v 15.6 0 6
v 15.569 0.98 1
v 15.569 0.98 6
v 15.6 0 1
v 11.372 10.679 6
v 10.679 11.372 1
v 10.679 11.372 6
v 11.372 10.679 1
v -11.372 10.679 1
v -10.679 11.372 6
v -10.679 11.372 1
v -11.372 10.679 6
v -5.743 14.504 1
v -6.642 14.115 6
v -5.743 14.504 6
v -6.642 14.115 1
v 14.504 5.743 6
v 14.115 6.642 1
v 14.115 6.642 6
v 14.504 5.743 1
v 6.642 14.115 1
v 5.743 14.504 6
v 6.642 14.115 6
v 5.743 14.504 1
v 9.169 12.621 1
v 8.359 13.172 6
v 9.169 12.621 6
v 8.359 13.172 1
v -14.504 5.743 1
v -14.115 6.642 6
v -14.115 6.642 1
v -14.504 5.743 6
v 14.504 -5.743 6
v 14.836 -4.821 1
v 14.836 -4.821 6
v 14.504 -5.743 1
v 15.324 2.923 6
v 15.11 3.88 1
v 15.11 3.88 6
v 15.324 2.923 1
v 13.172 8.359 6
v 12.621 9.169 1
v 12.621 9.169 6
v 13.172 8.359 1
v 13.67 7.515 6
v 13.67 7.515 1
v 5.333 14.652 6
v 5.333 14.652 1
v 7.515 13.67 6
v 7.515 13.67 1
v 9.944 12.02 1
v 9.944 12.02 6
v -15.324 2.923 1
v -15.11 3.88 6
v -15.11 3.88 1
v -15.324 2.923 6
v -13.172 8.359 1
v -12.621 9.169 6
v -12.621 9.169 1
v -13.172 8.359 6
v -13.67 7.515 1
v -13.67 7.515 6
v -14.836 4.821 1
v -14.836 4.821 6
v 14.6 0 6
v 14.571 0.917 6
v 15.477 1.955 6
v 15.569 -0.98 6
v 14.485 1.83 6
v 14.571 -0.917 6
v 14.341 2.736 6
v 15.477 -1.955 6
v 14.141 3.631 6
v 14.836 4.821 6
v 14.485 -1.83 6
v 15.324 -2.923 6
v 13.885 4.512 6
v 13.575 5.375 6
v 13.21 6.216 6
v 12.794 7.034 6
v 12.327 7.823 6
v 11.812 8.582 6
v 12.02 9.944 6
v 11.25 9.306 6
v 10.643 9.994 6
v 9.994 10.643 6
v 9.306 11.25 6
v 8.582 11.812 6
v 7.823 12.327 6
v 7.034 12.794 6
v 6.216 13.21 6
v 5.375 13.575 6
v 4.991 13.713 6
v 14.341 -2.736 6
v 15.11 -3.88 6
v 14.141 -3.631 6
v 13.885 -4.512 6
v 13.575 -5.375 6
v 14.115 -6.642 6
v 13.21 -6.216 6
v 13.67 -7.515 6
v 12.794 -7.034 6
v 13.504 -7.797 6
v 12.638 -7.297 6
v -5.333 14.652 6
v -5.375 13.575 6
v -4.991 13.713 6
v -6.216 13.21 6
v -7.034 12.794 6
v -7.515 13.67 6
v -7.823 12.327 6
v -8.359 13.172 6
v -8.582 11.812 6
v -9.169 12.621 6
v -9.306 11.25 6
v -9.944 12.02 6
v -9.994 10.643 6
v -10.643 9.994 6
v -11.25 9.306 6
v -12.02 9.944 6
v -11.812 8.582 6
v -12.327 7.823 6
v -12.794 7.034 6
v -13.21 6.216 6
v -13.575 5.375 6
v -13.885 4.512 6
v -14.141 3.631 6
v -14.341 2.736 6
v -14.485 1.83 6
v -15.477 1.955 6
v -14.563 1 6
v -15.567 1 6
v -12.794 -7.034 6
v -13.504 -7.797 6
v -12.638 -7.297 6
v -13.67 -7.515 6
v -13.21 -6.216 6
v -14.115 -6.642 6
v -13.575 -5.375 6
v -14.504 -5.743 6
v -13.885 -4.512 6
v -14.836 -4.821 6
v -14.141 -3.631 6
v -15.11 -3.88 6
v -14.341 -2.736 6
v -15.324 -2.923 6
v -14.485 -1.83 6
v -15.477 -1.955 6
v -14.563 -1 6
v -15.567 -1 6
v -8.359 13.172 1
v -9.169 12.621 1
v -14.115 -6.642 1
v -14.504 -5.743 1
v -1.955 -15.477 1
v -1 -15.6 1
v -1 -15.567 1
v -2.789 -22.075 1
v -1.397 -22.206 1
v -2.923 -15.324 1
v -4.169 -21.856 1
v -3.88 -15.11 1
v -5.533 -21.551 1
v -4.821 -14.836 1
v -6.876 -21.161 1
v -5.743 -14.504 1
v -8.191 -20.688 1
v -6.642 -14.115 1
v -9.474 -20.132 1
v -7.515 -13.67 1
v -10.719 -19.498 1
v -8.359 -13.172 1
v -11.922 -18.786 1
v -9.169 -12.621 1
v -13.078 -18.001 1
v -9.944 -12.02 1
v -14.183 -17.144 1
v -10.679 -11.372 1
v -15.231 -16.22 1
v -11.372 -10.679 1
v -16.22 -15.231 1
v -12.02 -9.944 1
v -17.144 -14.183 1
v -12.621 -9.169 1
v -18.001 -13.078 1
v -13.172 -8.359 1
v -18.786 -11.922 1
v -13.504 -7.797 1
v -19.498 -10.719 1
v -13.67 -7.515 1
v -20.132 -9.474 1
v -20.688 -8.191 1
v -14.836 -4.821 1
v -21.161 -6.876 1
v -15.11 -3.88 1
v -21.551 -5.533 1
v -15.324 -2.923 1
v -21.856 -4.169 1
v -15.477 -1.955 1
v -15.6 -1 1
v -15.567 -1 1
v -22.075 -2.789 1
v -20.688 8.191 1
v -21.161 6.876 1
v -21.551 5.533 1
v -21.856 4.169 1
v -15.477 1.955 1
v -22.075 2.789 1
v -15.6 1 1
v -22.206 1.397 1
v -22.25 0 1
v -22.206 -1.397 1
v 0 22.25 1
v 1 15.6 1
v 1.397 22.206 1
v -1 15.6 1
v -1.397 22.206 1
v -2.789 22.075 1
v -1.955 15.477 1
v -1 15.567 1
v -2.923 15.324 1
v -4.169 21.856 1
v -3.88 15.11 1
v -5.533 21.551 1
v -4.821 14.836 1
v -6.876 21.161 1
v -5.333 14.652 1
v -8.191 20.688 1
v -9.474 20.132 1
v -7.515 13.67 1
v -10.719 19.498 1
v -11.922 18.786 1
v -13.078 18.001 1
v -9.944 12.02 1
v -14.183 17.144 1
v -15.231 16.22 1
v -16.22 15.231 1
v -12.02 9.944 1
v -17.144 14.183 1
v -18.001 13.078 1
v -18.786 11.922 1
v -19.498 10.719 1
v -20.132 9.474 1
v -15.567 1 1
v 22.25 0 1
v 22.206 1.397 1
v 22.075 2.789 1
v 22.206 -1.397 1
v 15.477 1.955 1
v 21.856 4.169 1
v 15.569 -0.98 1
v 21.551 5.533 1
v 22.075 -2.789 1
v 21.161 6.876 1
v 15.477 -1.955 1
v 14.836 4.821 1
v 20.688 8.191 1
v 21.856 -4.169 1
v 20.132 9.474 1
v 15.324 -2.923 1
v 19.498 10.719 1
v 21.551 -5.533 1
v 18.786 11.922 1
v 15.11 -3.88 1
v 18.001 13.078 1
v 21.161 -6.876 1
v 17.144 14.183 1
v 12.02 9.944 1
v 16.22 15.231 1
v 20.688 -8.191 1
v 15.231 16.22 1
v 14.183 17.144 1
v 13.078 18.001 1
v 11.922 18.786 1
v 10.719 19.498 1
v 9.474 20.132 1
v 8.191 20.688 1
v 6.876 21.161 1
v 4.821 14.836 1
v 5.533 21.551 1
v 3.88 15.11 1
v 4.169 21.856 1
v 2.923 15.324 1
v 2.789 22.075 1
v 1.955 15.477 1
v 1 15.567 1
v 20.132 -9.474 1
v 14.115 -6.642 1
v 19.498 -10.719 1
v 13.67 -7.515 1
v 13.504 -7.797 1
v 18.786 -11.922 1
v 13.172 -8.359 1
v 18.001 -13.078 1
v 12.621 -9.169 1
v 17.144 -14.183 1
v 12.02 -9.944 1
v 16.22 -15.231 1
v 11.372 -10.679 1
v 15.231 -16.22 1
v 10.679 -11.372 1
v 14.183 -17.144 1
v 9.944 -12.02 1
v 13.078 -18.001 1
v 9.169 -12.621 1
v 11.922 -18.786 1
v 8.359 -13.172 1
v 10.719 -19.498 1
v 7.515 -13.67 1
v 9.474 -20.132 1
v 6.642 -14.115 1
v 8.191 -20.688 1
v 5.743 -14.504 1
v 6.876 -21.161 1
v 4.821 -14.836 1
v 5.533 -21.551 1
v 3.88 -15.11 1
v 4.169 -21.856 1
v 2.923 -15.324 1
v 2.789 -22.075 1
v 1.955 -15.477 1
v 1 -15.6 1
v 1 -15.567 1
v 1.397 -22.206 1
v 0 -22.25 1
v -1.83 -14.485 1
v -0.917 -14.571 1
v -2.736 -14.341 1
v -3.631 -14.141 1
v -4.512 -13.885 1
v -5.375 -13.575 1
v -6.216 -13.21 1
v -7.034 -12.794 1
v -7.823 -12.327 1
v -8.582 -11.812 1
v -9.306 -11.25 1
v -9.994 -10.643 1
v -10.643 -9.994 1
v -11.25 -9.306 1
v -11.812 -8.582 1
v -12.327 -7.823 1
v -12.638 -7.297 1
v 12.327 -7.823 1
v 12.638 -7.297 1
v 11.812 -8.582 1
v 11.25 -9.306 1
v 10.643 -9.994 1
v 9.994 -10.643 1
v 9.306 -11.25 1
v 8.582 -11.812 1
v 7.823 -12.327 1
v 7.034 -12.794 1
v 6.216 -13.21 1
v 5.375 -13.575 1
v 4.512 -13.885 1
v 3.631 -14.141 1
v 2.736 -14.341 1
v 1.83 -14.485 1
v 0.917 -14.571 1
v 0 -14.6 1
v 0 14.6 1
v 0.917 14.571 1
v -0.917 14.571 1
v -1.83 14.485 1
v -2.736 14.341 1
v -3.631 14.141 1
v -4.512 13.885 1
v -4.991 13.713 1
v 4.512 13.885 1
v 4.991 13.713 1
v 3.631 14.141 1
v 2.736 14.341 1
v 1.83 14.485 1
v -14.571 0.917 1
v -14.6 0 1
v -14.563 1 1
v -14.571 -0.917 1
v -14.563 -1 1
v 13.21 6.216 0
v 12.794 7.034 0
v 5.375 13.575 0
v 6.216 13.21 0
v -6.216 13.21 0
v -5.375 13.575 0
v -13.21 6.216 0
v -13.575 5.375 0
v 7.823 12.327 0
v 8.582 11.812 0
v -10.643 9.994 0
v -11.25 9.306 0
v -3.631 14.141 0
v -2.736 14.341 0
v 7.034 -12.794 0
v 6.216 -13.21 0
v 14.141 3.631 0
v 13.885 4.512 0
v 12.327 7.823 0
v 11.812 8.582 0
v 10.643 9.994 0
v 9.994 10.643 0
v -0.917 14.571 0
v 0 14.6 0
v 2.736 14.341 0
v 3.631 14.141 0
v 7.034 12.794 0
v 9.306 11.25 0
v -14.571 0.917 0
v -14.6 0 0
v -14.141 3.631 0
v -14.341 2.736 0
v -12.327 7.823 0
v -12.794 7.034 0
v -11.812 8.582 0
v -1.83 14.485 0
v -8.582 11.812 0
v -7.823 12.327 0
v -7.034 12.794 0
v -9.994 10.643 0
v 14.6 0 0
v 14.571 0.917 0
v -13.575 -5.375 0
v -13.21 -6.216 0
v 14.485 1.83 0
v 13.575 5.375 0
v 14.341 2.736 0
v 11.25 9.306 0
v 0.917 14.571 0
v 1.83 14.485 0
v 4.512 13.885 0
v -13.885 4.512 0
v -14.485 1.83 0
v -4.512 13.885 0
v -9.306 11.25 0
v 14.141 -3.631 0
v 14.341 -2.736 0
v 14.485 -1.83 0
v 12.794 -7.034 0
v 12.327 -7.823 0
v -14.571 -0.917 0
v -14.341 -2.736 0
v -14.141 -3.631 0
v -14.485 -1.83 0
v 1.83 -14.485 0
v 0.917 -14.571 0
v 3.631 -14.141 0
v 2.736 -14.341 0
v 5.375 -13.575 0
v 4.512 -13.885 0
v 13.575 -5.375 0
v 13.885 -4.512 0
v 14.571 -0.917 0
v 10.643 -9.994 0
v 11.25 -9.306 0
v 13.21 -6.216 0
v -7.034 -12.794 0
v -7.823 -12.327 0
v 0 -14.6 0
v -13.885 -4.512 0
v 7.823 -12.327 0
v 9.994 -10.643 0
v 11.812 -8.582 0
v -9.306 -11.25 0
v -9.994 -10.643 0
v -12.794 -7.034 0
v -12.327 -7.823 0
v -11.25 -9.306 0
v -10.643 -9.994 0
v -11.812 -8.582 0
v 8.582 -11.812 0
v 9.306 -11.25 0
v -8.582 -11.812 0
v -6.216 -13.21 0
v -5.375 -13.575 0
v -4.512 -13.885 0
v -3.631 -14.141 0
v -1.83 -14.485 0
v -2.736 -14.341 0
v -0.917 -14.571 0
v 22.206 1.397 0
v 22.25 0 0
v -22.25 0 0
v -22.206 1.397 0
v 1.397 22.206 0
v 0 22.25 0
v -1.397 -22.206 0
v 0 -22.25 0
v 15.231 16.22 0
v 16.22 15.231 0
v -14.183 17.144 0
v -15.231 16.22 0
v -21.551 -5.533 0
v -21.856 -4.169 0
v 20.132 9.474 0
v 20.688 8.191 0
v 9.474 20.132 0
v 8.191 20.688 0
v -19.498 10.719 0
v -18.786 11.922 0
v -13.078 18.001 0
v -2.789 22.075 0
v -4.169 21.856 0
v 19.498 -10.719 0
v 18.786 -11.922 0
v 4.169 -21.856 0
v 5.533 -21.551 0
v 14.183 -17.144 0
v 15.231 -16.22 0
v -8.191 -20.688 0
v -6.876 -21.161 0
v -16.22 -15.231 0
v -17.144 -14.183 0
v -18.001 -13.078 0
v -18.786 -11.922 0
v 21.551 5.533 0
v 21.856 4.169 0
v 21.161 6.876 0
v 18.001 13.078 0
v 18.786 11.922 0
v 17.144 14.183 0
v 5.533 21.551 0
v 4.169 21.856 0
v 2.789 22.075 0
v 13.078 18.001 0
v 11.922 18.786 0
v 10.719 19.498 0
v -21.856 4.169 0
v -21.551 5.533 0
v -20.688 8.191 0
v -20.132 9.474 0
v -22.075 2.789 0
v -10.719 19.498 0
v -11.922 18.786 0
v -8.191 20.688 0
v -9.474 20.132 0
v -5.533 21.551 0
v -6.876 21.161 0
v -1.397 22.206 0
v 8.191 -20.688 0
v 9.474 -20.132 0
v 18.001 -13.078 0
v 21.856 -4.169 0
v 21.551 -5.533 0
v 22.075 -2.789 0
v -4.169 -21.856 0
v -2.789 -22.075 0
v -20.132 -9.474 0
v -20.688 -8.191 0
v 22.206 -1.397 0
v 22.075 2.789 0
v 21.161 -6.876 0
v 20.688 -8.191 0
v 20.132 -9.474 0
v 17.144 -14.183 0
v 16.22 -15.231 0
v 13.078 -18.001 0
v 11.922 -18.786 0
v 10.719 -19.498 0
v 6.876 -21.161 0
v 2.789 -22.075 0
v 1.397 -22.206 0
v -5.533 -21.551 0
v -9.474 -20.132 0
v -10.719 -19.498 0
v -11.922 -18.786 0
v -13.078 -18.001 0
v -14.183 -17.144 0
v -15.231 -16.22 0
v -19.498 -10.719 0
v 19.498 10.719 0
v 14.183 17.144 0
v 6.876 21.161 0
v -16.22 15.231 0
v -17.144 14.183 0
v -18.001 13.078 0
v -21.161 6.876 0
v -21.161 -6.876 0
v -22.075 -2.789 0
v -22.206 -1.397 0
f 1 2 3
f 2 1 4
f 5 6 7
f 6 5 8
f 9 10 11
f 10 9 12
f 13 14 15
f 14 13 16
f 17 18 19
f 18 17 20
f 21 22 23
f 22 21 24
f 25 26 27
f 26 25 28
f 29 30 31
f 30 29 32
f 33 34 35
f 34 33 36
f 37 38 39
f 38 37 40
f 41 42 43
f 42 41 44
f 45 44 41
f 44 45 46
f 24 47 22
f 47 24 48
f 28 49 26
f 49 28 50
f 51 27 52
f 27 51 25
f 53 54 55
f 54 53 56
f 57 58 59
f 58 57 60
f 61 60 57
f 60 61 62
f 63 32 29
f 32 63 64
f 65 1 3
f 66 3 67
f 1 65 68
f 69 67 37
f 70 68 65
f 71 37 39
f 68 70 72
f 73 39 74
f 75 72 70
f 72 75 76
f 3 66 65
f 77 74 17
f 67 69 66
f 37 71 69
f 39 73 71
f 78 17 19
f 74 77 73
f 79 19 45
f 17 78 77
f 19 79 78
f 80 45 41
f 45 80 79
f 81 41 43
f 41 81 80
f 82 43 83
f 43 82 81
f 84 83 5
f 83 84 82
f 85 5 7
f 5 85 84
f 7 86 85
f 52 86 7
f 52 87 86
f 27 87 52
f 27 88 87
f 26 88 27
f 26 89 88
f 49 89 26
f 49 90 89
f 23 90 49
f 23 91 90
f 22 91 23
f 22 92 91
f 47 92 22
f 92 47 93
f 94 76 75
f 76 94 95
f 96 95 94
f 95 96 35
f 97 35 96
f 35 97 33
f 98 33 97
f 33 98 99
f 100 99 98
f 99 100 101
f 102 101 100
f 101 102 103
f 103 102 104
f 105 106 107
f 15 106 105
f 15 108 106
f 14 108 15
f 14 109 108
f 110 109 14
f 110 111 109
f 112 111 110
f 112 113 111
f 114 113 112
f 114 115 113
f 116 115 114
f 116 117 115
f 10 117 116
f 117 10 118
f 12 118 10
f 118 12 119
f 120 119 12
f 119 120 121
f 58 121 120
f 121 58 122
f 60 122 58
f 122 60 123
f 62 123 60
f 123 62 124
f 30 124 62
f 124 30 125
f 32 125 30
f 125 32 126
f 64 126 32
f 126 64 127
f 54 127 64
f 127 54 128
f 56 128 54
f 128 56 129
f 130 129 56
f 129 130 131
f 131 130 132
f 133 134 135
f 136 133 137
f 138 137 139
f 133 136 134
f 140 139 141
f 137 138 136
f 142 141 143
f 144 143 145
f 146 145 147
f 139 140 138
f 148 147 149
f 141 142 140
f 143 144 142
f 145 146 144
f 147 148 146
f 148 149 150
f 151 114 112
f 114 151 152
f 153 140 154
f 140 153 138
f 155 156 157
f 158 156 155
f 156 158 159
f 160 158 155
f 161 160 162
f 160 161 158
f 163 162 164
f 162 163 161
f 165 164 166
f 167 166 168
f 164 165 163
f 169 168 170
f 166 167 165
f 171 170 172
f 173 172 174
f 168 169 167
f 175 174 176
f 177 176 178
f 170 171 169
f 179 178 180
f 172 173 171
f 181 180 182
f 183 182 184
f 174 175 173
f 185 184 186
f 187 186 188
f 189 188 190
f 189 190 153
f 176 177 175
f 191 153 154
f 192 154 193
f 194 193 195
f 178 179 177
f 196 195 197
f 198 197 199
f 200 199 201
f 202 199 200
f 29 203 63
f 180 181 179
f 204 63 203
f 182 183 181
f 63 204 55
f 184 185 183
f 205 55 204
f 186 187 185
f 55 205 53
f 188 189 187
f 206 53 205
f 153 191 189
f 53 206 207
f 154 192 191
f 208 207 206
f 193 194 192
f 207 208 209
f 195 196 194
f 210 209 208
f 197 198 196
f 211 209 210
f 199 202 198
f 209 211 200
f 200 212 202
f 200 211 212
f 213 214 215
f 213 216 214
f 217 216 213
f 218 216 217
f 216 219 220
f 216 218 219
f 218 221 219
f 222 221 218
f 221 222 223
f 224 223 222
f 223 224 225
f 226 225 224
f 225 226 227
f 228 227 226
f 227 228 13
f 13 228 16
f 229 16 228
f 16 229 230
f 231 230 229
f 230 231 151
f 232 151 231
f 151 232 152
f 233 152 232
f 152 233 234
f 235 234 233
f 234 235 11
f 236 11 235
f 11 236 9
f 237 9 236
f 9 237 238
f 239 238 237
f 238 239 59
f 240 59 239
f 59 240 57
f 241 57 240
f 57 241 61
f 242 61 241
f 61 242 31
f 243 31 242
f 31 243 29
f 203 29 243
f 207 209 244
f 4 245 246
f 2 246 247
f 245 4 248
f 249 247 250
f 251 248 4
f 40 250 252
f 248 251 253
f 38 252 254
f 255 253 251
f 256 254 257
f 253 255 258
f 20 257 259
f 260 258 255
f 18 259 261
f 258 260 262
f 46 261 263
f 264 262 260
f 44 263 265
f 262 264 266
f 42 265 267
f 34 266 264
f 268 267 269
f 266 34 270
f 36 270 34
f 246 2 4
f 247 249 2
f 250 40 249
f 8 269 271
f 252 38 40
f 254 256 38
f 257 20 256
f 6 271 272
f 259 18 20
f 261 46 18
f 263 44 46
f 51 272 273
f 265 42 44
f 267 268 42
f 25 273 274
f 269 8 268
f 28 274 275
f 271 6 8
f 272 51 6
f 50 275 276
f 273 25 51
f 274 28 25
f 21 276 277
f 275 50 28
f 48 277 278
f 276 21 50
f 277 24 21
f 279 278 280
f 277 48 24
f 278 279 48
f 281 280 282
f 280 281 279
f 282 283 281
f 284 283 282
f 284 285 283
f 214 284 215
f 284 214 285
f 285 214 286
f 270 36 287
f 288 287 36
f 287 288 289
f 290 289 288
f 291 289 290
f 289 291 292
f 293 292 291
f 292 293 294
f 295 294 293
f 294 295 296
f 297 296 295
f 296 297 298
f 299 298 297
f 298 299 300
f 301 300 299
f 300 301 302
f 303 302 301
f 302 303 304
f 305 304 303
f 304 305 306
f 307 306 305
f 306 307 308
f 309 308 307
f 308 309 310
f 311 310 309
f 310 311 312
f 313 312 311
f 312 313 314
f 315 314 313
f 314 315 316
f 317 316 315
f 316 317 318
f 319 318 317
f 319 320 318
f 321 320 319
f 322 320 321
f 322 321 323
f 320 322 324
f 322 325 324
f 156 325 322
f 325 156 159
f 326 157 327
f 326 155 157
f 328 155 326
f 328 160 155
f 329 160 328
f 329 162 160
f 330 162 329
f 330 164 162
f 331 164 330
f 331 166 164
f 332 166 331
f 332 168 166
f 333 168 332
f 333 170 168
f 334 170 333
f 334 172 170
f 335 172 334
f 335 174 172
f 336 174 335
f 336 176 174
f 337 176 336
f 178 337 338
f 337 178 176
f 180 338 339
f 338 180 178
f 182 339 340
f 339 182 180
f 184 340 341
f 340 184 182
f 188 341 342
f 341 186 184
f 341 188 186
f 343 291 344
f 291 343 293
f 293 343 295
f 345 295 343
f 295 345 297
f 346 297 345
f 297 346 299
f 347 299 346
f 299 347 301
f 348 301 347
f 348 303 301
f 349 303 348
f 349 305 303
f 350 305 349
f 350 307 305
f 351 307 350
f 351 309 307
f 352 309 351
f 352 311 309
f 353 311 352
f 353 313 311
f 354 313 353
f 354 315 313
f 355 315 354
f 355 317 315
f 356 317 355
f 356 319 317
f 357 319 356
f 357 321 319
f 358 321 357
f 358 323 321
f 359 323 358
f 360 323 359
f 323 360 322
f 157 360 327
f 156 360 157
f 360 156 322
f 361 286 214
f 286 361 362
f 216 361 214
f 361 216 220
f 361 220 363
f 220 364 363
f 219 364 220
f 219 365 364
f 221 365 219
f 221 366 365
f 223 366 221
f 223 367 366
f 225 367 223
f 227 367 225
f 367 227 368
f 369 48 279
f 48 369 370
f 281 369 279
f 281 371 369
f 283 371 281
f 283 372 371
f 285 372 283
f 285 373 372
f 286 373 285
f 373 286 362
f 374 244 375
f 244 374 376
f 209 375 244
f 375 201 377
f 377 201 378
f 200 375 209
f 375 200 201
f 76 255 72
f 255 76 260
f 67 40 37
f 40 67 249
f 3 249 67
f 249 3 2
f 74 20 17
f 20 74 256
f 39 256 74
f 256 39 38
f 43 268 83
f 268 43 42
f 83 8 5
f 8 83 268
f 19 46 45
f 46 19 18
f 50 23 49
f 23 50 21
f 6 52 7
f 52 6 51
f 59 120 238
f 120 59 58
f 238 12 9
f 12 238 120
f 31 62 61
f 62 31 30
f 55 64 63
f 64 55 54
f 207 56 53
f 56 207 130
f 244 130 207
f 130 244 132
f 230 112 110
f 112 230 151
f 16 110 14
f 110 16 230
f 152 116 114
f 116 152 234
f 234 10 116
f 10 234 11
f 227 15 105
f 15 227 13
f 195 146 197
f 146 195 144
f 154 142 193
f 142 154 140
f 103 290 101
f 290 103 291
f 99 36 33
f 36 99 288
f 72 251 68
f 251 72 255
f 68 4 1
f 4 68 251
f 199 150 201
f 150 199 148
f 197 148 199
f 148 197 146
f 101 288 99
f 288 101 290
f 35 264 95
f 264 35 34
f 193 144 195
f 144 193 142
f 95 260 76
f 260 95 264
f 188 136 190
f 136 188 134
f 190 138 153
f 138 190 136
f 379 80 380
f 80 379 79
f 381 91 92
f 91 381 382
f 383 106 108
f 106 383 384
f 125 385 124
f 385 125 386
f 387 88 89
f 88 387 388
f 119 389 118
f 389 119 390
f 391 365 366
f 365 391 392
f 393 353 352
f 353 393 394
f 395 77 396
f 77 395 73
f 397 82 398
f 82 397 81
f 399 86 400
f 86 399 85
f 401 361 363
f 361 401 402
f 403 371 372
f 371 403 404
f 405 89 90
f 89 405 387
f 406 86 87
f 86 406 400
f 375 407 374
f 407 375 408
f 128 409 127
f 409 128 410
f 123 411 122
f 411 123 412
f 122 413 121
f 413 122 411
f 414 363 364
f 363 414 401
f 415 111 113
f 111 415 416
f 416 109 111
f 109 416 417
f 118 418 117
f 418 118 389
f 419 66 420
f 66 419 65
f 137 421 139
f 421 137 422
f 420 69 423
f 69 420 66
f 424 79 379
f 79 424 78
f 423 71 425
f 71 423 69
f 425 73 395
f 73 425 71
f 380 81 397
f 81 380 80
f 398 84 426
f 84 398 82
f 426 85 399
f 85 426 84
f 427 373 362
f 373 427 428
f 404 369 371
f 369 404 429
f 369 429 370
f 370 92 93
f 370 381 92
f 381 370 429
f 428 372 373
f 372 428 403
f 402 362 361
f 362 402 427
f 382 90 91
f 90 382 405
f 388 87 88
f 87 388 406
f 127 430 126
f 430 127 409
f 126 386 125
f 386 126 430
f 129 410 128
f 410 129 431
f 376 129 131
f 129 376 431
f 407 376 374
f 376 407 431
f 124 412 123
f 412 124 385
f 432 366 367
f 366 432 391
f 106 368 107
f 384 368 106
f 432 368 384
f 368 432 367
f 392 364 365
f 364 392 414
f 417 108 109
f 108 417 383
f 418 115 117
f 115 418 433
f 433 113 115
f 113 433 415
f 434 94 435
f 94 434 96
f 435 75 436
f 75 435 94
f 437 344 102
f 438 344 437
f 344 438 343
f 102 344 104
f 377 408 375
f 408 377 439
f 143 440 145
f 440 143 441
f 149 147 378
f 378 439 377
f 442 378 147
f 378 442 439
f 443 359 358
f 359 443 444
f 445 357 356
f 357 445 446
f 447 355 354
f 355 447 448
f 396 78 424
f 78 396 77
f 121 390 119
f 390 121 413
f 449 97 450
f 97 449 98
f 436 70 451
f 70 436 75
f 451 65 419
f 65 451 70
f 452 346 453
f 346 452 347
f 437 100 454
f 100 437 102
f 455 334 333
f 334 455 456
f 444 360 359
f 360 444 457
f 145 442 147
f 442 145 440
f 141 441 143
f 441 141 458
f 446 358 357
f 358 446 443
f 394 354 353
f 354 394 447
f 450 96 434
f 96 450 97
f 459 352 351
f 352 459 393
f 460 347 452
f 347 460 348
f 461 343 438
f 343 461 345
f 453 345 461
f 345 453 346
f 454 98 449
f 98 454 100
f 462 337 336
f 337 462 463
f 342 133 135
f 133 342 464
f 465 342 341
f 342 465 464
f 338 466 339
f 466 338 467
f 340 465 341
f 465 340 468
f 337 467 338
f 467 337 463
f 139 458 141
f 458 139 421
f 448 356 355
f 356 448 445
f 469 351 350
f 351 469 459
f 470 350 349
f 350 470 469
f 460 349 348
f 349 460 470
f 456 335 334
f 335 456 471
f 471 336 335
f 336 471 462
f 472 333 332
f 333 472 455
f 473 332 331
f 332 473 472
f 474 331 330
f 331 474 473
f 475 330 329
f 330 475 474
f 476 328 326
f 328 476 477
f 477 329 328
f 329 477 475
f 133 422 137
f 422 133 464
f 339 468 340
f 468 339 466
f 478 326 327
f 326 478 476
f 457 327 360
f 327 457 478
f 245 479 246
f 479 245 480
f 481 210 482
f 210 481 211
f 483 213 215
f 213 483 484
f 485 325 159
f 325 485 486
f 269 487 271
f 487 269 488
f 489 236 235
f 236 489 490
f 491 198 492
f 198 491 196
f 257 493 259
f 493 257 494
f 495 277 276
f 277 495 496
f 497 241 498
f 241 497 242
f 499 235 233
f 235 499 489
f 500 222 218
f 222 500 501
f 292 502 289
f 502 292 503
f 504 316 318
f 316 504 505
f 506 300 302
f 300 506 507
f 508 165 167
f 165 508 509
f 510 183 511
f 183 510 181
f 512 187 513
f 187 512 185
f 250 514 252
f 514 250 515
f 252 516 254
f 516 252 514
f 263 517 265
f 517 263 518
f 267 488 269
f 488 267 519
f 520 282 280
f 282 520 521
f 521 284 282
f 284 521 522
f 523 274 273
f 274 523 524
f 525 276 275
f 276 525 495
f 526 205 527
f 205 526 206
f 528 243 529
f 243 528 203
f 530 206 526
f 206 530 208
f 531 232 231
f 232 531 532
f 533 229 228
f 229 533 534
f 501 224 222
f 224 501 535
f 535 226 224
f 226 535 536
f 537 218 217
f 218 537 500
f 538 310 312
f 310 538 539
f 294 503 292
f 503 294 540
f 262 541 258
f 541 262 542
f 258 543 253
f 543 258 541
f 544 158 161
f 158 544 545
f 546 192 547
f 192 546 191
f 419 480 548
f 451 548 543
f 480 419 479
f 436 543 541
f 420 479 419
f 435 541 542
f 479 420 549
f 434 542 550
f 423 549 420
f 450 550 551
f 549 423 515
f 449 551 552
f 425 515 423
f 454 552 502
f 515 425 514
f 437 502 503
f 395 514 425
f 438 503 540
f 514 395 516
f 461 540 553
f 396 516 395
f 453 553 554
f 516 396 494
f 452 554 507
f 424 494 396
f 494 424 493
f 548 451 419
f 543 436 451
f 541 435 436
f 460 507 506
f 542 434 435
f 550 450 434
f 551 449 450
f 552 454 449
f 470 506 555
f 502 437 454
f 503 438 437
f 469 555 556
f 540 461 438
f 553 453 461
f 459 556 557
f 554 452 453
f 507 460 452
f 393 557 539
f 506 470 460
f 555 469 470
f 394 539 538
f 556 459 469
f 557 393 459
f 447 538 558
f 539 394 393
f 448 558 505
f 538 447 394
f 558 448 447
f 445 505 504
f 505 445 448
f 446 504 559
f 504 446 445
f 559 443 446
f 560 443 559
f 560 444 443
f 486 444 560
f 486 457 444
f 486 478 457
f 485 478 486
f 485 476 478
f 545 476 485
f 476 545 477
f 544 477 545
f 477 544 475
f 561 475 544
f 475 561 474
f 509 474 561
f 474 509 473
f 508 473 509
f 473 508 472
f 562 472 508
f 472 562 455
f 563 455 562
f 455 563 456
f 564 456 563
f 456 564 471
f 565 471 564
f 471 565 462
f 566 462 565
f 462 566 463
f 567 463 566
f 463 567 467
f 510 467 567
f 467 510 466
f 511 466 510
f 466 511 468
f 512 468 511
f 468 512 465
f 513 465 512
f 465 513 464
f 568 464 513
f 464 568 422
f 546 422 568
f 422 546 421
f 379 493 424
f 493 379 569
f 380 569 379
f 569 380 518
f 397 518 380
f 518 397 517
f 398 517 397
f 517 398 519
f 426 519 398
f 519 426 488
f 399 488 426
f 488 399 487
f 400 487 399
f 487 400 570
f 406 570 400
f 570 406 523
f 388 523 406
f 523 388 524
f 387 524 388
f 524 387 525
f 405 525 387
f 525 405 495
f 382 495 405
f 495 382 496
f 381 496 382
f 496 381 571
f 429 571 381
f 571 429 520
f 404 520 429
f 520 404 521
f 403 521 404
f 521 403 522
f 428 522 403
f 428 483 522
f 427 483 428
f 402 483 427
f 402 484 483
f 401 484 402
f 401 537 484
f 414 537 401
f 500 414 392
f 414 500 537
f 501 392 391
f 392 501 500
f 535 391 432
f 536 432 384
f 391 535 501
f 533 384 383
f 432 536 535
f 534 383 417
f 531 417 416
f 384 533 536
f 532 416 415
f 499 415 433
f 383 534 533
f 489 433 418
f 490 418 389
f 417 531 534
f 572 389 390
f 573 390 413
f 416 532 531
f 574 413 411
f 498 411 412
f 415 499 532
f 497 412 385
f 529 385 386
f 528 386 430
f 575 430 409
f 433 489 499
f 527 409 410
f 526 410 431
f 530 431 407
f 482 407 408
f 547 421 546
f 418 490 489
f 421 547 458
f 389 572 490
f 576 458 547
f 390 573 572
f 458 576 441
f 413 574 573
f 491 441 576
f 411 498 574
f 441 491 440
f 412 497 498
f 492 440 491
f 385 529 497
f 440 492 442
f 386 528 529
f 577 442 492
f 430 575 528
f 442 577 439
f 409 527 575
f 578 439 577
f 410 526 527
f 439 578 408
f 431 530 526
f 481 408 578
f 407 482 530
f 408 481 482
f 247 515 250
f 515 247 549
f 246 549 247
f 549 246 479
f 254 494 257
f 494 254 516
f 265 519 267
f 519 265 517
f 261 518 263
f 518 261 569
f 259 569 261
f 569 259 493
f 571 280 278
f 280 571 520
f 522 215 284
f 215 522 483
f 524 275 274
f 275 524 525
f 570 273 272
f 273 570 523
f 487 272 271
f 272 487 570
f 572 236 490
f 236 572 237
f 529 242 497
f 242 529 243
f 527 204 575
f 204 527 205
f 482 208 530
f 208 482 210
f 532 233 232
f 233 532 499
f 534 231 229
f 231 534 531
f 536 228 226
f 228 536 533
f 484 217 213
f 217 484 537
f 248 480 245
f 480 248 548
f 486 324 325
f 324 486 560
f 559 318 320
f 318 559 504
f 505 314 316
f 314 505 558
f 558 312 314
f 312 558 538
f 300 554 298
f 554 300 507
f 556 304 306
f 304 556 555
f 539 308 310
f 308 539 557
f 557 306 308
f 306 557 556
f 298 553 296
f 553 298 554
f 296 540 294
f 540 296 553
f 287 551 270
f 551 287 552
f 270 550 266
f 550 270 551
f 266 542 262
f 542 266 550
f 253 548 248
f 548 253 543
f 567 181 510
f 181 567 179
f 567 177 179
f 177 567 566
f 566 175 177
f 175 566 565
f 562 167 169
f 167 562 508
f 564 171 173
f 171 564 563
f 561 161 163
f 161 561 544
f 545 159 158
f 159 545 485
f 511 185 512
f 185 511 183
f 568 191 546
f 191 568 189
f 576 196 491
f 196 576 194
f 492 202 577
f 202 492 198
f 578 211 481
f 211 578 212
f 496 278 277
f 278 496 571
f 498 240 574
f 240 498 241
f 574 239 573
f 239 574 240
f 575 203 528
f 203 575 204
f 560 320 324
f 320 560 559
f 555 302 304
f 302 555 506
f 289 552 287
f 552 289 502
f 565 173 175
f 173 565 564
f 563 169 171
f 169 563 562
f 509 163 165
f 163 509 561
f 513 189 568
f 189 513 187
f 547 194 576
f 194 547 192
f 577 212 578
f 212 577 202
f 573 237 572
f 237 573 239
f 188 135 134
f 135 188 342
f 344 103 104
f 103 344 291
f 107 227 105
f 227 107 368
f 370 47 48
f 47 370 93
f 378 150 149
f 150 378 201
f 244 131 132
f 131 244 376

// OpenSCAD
// This design is a cover for Adafruit's 16-Neopixel ring combined with the Gemma microcontroller into a necklace.
// Author: brightcolorfulflickers - instagram, tumblr, github
// September 2016

ring_h = 5; // height of the inner ring perpendicular to the PCB
outer_r = 44.5/2; // from OD posted on Adafruit product page
inner_r = 31.2/2; // from ID posted on Adafruit product page
case_ring_thick = 1; // thickness of the inner ring perpendicular to the PCB
case_top_thick = 1; // the thickness of the diffusion layer on top of the LEDs
wire_slot = 2; // width of slot for wires
top_cutout_angle = 60; // half sweep of top cutout (total is this x 2) since the Gemma presses up against the Neopixel ring
bottom_cutout_angle = 20; // half sweep of bottom cutout (total is this x 2) to allow space for battery & wire
fnval = 100; // resolution of render

module ring_case() {
    difference() {
        union() {
            translate([0,0,case_top_thick]) difference() {
            cylinder(ring_h,inner_r,inner_r, false, $fn=fnval);
            cylinder(ring_h,inner_r-case_ring_thick,inner_r-case_ring_thick, false, $fn=fnval);
            }

            difference() {
                cylinder(case_top_thick,outer_r,outer_r, false, $fn=fnval);
                cylinder(case_top_thick,inner_r-case_ring_thick,inner_r-case_ring_thick, false, $fn=fnval);
            }
        }
        //Cut out slots for the wires.
        translate([-wire_slot/2,0,case_top_thick]) cube([wire_slot,inner_r,ring_h], false);
        translate([-wire_slot/2,-inner_r,case_top_thick]) cube([wire_slot,inner_r,ring_h], false);
        
        translate([-inner_r,-wire_slot/2,case_top_thick]) cube([inner_r,wire_slot,ring_h], false);
    }
}

/* 
 * Excerpt from... 
 * 
 * Parametric Encoder Wheel 
 *
 * by Alex Franke (codecreations), March 2012
 * http://www.theFrankes.com
 * 
 * Licenced under Creative Commons Attribution - Non-Commercial - Share Alike 3.0 
*/
 
module arc( height, depth, radius, degrees ) {
    // This dies a horible death if it's not rendered here 
    // -- sucks up all memory and spins out of control 
    render() {
        difference() {
            // Outer ring
            rotate_extrude($fn = 100)
                translate([radius - height, 0, 0])
                    square([height,depth]);
         
            // Cut half off
            translate([0,-(radius+1),-.5]) 
                cube ([radius+1,(radius+1)*2,depth+1]);
         
            // Cover the other half as necessary
            rotate([0,0,180-degrees])
            translate([0,-(radius+1),-.5]) 
                cube ([radius+1,(radius+1)*2,depth+1]);
         
        }
    }
}

difference() {
    ring_case();
    //This part cuts out the top arc since the Gemma presses against the Neopixel ring. Widened from v1.
    translate([0,0,case_top_thick]) arc(case_ring_thick,ring_h,inner_r,top_cutout_angle);
    translate([0,0,case_top_thick]) mirror([1,0,0]) arc(case_ring_thick,ring_h,inner_r,top_cutout_angle);
    
    //This part cuts out the bottom arc to allow room for the battery wires.
    translate([0,0,case_top_thick]) mirror([0,1,0]) arc(case_ring_thick,ring_h,inner_r,bottom_cutout_angle);
    translate([0,0,case_top_thick]) mirror([1,0,0]) arc(case_ring_thick,ring_h,inner_r,-bottom_cutout_angle);
    
    
}
